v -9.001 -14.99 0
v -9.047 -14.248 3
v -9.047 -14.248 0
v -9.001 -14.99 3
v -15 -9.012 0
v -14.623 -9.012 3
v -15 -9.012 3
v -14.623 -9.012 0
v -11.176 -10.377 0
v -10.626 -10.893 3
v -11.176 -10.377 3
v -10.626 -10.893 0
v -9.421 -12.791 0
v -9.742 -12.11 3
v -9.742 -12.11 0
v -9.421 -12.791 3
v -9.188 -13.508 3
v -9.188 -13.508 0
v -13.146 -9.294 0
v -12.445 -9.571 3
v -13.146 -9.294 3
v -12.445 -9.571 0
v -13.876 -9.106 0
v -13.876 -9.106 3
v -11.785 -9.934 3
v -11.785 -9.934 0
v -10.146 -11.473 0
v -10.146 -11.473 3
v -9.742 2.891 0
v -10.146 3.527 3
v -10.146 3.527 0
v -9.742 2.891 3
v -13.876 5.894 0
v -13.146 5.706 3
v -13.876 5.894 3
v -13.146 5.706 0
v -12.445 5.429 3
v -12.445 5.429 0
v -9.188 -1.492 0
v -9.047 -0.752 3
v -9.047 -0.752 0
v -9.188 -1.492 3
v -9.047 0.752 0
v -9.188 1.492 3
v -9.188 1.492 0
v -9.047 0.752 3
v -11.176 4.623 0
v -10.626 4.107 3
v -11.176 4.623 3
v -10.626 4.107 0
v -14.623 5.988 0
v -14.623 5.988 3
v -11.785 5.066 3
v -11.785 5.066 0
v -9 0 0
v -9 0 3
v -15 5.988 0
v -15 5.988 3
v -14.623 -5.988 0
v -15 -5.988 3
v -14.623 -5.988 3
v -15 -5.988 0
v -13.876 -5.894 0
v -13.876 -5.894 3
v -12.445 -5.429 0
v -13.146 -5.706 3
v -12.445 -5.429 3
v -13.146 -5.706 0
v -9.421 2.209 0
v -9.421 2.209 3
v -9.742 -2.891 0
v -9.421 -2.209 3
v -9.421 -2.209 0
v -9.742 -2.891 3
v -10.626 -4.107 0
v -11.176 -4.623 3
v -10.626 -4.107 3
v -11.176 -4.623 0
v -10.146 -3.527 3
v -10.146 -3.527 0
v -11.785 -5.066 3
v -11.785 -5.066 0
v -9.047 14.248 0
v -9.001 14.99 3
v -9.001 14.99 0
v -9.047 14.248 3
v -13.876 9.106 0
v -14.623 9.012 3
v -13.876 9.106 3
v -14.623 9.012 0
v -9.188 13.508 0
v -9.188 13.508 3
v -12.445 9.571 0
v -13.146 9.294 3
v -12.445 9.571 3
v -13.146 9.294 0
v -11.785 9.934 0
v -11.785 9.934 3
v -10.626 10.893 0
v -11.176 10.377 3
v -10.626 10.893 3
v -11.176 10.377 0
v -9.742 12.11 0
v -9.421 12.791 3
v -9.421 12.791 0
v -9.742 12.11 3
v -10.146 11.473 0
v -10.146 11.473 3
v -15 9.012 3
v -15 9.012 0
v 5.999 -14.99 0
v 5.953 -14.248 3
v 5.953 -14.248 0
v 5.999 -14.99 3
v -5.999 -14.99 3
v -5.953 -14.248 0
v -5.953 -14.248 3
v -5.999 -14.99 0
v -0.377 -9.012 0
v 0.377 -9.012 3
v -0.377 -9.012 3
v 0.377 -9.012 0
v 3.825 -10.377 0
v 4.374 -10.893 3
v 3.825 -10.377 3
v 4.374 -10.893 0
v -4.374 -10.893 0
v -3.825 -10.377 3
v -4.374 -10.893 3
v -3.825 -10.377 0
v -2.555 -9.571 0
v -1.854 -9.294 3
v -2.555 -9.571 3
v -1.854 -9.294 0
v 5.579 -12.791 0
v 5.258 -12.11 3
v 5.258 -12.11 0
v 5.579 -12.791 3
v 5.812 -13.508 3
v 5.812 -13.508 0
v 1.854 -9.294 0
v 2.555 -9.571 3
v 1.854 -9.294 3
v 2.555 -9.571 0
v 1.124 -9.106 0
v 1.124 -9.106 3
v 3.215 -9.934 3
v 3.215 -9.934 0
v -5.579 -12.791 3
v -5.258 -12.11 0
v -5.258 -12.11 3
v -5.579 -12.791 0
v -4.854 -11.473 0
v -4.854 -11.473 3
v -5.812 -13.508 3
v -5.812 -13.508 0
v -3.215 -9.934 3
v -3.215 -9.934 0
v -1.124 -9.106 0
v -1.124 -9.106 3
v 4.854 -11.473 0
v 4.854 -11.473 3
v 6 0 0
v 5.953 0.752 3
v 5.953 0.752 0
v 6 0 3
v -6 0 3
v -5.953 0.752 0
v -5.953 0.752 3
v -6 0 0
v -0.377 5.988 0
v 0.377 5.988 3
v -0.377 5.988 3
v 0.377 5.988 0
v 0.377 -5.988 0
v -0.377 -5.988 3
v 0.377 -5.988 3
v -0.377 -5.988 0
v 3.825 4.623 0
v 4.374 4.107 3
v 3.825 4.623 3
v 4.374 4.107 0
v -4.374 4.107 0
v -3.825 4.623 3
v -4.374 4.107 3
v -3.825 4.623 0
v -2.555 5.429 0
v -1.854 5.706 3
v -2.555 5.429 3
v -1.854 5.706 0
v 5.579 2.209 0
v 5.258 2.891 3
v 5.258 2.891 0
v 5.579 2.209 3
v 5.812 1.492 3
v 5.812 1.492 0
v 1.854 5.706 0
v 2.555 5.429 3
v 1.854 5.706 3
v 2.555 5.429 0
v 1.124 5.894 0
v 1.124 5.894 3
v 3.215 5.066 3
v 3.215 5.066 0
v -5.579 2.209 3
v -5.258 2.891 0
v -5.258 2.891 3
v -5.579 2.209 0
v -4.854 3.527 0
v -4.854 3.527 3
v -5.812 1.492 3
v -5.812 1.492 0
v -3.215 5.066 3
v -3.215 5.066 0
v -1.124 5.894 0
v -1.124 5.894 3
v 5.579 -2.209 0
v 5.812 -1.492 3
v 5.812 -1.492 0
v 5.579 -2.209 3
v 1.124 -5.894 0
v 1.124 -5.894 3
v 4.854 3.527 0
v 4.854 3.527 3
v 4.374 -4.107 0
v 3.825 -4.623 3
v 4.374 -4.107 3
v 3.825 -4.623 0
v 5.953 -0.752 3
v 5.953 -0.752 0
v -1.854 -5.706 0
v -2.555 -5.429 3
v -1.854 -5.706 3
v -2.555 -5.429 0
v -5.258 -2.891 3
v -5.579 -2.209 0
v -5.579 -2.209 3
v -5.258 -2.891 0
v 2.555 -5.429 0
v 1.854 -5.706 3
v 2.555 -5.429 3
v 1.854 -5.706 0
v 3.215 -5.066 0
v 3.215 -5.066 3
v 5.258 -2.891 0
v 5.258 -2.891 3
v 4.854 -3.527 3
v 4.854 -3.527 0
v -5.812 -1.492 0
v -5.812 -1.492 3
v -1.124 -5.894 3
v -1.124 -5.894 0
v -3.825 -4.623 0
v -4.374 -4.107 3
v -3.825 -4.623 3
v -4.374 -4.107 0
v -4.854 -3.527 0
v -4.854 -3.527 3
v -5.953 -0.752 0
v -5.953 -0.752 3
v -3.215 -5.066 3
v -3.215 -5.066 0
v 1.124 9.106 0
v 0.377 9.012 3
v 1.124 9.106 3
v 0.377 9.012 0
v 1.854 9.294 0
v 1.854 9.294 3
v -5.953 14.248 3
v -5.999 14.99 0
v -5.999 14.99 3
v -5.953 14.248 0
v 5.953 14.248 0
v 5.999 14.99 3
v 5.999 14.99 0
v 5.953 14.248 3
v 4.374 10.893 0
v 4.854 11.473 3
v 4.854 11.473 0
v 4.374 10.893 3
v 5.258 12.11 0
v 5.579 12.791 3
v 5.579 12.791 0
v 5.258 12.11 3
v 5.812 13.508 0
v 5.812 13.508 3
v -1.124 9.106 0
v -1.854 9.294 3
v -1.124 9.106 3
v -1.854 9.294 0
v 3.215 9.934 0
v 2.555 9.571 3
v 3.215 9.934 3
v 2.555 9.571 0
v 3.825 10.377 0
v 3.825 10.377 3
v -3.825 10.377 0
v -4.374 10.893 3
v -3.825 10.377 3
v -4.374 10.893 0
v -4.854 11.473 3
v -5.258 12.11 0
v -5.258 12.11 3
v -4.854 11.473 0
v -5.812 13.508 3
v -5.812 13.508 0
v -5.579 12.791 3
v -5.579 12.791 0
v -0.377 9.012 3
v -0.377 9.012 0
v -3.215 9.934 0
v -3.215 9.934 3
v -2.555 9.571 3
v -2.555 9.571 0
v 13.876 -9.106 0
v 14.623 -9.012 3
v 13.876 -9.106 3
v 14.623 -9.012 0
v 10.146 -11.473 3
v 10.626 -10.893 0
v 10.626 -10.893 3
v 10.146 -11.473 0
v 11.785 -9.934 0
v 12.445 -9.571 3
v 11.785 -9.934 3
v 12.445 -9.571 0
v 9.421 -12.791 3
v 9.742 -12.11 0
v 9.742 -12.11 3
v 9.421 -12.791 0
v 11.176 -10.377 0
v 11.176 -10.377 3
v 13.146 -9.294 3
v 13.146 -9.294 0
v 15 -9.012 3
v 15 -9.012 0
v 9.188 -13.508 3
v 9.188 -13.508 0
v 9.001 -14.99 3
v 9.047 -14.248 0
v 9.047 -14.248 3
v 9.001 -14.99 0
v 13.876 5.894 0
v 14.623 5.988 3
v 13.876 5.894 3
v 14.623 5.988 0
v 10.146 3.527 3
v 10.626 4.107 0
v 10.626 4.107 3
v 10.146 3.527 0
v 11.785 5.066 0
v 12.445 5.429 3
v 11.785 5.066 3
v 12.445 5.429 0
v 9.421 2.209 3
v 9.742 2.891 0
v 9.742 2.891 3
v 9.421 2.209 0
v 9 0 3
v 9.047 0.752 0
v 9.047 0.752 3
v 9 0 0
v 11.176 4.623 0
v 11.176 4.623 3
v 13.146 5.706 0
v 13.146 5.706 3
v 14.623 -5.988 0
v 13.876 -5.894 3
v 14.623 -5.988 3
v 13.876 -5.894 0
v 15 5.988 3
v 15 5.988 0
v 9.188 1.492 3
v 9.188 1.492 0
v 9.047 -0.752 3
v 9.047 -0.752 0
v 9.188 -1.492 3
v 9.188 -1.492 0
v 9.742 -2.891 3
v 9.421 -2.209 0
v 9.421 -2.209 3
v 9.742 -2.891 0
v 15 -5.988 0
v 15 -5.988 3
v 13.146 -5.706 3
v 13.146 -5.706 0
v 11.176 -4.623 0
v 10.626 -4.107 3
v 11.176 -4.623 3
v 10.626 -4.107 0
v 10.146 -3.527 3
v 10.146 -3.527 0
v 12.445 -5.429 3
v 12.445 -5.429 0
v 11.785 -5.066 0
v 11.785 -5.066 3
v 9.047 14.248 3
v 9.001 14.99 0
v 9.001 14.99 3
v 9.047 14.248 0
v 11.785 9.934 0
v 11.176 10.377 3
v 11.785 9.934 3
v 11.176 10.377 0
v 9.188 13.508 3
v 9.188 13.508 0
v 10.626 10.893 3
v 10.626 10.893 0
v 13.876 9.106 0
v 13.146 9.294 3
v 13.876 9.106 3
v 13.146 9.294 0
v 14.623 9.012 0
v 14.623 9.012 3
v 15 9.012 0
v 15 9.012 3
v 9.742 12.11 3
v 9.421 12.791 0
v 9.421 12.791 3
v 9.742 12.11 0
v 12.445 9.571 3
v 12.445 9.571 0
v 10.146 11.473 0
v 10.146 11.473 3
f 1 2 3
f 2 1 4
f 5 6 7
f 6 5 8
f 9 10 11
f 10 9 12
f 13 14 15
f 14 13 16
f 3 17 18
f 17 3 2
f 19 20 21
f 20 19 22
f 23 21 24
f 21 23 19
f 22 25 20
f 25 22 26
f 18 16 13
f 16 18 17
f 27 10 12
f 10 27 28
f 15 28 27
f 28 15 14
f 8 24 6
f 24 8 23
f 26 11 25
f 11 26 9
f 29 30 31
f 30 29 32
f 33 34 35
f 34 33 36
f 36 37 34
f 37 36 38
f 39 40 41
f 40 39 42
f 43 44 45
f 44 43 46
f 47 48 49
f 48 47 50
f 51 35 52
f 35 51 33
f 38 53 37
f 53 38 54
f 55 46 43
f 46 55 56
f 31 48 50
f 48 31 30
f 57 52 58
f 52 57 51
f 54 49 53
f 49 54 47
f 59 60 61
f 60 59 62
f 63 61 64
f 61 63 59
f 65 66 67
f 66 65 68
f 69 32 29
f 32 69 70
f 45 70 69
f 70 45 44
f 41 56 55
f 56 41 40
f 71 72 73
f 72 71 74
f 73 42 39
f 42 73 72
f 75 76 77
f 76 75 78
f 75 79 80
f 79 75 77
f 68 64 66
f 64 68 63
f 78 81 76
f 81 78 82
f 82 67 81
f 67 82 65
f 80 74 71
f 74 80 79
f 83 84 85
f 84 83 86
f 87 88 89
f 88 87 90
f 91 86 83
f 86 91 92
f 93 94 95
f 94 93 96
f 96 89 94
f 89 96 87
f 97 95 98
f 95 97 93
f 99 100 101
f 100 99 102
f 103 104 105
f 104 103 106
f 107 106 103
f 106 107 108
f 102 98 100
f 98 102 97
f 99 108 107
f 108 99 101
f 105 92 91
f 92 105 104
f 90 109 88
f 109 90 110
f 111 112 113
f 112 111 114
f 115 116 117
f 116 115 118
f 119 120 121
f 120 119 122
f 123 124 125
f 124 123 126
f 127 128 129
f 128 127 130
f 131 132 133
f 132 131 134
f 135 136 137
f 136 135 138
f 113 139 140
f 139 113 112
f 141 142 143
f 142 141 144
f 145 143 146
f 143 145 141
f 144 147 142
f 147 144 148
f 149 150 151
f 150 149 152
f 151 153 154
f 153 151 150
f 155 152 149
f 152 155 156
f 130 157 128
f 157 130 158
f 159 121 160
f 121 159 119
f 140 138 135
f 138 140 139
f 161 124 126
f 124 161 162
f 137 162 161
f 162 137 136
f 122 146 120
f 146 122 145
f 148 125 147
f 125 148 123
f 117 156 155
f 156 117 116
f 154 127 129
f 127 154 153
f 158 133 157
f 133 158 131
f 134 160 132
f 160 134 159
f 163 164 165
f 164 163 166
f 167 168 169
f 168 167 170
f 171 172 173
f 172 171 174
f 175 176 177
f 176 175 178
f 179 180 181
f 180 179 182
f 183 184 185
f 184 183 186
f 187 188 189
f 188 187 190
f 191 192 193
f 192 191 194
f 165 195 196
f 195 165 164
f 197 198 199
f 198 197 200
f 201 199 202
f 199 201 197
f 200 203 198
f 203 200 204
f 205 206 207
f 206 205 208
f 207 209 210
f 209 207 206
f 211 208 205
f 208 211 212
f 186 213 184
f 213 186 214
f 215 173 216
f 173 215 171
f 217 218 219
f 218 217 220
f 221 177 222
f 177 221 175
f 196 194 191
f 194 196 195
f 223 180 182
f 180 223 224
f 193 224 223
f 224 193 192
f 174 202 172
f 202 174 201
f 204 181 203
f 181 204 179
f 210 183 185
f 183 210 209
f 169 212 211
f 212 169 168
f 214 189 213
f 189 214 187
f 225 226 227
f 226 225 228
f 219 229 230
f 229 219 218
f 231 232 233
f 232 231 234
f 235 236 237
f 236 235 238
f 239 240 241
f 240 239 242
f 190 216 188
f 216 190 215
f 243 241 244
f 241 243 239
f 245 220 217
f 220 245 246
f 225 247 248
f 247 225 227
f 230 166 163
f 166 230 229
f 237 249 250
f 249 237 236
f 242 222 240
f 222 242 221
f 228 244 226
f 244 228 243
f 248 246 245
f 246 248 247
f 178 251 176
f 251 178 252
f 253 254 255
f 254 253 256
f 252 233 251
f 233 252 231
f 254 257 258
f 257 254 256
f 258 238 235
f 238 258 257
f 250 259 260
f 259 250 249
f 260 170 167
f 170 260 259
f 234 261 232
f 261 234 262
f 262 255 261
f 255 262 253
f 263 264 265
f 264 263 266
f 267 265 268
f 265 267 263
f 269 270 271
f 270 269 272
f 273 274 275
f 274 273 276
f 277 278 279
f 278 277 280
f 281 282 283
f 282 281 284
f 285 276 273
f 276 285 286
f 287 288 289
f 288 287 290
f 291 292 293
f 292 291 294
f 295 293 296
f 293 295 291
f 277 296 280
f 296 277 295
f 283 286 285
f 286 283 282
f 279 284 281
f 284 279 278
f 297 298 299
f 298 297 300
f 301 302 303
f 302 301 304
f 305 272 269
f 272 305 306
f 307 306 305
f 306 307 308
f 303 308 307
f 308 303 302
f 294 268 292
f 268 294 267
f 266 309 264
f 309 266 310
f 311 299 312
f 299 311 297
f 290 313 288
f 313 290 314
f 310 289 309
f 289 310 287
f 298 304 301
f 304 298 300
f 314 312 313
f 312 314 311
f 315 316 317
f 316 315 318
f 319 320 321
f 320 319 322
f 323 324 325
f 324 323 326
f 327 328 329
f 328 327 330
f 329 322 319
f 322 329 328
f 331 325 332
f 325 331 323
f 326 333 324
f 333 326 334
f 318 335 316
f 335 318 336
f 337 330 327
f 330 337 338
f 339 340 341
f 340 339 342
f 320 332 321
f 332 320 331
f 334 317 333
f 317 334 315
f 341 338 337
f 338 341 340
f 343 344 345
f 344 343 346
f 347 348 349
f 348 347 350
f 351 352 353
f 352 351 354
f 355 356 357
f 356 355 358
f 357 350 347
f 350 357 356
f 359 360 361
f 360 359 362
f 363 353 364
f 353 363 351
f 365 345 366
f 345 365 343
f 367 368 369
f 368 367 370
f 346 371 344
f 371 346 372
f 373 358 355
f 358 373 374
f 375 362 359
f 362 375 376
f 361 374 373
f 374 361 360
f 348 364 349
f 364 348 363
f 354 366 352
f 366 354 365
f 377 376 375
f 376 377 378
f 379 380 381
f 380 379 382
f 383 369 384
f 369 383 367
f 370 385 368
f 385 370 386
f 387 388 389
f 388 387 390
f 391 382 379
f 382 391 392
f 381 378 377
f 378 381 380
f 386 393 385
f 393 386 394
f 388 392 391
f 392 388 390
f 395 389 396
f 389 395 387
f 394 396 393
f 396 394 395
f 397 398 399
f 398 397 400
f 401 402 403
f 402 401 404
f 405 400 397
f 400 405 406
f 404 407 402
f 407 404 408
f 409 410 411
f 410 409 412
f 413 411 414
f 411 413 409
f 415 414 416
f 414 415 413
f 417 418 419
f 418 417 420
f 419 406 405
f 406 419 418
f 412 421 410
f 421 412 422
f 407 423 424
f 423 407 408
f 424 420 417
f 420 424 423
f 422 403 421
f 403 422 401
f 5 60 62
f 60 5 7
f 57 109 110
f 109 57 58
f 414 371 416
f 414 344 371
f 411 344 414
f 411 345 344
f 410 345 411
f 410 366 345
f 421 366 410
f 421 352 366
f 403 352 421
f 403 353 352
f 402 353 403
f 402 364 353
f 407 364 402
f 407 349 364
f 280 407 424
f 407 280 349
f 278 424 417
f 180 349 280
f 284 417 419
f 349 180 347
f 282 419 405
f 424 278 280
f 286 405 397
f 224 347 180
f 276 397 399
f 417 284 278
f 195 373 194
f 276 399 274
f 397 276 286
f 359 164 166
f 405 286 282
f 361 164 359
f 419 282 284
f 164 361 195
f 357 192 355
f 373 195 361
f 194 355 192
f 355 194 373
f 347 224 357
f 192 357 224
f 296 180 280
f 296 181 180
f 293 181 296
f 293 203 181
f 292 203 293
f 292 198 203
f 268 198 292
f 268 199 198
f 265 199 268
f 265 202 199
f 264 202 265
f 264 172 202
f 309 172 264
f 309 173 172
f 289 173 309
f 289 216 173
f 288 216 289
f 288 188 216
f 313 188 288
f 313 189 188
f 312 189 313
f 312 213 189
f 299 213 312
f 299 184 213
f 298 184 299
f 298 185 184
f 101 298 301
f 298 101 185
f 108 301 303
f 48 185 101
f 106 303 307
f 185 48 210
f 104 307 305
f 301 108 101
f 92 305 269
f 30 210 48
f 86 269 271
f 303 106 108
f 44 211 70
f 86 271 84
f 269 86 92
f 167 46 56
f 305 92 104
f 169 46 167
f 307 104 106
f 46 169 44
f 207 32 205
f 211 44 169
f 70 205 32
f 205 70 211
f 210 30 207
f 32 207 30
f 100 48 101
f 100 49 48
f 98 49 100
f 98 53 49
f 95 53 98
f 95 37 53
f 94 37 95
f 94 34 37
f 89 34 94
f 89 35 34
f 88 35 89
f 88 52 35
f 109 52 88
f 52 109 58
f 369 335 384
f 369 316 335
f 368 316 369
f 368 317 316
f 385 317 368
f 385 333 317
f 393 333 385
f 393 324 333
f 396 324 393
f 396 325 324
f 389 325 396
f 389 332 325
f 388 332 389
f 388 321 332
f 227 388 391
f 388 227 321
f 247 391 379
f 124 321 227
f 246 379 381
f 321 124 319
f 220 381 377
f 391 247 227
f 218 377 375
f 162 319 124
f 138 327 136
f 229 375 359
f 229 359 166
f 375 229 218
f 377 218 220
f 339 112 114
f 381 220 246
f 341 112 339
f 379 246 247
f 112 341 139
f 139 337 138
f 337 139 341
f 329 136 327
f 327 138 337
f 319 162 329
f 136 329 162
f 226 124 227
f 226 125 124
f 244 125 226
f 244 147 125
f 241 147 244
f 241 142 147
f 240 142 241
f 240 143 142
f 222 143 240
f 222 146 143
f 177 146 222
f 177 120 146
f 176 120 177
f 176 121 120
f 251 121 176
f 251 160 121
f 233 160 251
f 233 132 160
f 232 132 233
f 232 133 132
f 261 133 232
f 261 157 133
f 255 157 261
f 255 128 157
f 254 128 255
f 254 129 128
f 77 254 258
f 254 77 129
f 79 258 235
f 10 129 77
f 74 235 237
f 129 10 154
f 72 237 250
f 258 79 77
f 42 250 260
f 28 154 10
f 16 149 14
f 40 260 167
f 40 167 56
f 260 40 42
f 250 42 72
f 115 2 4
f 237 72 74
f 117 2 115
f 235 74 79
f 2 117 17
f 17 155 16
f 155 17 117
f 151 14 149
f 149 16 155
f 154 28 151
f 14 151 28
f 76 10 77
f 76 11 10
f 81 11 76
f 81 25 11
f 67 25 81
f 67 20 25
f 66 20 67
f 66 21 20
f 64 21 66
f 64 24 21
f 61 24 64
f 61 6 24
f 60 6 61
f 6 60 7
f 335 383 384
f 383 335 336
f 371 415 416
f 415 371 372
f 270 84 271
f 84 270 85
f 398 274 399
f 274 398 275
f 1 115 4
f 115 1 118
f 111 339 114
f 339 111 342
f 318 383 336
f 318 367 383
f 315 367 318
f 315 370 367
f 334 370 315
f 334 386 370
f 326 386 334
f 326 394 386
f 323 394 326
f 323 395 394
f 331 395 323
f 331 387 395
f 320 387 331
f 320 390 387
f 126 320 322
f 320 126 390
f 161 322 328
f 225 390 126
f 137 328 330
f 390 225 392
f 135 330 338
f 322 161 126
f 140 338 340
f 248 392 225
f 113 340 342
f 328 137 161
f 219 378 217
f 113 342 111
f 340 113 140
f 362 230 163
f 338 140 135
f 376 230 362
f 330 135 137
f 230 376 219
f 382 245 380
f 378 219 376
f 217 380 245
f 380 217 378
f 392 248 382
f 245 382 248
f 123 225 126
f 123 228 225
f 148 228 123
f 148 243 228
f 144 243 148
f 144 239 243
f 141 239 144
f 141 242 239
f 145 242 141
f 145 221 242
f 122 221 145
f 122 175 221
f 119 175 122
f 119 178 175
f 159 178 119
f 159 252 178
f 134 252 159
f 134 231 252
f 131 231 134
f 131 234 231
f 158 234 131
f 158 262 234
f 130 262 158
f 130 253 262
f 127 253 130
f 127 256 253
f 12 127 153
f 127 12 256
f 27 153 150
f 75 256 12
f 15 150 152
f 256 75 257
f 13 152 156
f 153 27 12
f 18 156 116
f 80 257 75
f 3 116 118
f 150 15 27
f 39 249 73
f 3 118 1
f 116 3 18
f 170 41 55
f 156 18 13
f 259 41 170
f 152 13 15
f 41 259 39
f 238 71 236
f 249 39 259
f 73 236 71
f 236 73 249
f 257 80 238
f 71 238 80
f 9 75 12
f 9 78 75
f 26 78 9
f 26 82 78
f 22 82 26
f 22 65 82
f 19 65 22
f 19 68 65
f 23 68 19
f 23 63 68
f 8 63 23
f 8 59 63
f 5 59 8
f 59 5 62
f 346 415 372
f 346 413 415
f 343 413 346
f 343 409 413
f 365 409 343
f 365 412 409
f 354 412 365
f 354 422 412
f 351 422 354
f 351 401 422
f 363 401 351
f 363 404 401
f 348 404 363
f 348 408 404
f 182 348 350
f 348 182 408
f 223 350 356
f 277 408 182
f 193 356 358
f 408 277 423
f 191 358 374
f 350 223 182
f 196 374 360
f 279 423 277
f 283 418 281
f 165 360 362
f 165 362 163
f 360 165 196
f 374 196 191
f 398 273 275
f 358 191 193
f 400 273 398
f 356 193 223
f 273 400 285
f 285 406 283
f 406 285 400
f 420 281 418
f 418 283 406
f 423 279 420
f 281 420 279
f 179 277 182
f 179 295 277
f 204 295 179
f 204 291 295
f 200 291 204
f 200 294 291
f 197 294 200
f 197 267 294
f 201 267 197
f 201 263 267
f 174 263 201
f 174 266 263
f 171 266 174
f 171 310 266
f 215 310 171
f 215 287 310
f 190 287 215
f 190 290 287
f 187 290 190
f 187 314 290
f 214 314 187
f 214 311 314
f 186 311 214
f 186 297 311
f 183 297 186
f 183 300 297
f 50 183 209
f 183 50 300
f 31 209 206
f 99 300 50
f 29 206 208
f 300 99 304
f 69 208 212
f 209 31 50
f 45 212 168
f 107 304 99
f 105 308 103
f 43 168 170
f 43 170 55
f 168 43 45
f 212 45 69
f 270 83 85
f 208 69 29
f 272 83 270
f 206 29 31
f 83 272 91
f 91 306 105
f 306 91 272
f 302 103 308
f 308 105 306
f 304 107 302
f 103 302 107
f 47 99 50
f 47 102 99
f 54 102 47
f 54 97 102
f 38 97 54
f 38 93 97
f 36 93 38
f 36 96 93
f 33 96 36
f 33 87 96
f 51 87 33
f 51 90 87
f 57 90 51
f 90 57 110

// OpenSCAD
$fn = 50;


difference() {
	union() {
		hull() {
			translate(v = [-10.0000000000, 10.0000000000, 0]) {
				cylinder(h = 3, r = 5);
			}
			translate(v = [10.0000000000, 10.0000000000, 0]) {
				cylinder(h = 3, r = 5);
			}
			translate(v = [-10.0000000000, -10.0000000000, 0]) {
				cylinder(h = 3, r = 5);
			}
			translate(v = [10.0000000000, -10.0000000000, 0]) {
				cylinder(h = 3, r = 5);
			}
		}
	}
	union() {
		translate(v = [-15.0000000000, -15.0000000000, 0]) {
			translate(v = [0, 0, -100]) {
				cylinder(h = 200, r = 6.0000000000);
			}
		}
		translate(v = [-15.0000000000, 0.0000000000, 0]) {
			translate(v = [0, 0, -100]) {
				cylinder(h = 200, r = 6.0000000000);
			}
		}
		translate(v = [-15.0000000000, 15.0000000000, 0]) {
			translate(v = [0, 0, -100]) {
				cylinder(h = 200, r = 6.0000000000);
			}
		}
		translate(v = [0.0000000000, -15.0000000000, 0]) {
			translate(v = [0, 0, -100]) {
				cylinder(h = 200, r = 6.0000000000);
			}
		}
		translate(v = [0, 0, -100]) {
			cylinder(h = 200, r = 6.0000000000);
		}
		translate(v = [0.0000000000, 15.0000000000, 0]) {
			translate(v = [0, 0, -100]) {
				cylinder(h = 200, r = 6.0000000000);
			}
		}
		translate(v = [15.0000000000, -15.0000000000, 0]) {
			translate(v = [0, 0, -100]) {
				cylinder(h = 200, r = 6.0000000000);
			}
		}
		translate(v = [15.0000000000, 0.0000000000, 0]) {
			translate(v = [0, 0, -100]) {
				cylinder(h = 200, r = 6.0000000000);
			}
		}
		translate(v = [15.0000000000, 15.0000000000, 0]) {
			translate(v = [0, 0, -100]) {
				cylinder(h = 200, r = 6.0000000000);
			}
		}
	}
}
